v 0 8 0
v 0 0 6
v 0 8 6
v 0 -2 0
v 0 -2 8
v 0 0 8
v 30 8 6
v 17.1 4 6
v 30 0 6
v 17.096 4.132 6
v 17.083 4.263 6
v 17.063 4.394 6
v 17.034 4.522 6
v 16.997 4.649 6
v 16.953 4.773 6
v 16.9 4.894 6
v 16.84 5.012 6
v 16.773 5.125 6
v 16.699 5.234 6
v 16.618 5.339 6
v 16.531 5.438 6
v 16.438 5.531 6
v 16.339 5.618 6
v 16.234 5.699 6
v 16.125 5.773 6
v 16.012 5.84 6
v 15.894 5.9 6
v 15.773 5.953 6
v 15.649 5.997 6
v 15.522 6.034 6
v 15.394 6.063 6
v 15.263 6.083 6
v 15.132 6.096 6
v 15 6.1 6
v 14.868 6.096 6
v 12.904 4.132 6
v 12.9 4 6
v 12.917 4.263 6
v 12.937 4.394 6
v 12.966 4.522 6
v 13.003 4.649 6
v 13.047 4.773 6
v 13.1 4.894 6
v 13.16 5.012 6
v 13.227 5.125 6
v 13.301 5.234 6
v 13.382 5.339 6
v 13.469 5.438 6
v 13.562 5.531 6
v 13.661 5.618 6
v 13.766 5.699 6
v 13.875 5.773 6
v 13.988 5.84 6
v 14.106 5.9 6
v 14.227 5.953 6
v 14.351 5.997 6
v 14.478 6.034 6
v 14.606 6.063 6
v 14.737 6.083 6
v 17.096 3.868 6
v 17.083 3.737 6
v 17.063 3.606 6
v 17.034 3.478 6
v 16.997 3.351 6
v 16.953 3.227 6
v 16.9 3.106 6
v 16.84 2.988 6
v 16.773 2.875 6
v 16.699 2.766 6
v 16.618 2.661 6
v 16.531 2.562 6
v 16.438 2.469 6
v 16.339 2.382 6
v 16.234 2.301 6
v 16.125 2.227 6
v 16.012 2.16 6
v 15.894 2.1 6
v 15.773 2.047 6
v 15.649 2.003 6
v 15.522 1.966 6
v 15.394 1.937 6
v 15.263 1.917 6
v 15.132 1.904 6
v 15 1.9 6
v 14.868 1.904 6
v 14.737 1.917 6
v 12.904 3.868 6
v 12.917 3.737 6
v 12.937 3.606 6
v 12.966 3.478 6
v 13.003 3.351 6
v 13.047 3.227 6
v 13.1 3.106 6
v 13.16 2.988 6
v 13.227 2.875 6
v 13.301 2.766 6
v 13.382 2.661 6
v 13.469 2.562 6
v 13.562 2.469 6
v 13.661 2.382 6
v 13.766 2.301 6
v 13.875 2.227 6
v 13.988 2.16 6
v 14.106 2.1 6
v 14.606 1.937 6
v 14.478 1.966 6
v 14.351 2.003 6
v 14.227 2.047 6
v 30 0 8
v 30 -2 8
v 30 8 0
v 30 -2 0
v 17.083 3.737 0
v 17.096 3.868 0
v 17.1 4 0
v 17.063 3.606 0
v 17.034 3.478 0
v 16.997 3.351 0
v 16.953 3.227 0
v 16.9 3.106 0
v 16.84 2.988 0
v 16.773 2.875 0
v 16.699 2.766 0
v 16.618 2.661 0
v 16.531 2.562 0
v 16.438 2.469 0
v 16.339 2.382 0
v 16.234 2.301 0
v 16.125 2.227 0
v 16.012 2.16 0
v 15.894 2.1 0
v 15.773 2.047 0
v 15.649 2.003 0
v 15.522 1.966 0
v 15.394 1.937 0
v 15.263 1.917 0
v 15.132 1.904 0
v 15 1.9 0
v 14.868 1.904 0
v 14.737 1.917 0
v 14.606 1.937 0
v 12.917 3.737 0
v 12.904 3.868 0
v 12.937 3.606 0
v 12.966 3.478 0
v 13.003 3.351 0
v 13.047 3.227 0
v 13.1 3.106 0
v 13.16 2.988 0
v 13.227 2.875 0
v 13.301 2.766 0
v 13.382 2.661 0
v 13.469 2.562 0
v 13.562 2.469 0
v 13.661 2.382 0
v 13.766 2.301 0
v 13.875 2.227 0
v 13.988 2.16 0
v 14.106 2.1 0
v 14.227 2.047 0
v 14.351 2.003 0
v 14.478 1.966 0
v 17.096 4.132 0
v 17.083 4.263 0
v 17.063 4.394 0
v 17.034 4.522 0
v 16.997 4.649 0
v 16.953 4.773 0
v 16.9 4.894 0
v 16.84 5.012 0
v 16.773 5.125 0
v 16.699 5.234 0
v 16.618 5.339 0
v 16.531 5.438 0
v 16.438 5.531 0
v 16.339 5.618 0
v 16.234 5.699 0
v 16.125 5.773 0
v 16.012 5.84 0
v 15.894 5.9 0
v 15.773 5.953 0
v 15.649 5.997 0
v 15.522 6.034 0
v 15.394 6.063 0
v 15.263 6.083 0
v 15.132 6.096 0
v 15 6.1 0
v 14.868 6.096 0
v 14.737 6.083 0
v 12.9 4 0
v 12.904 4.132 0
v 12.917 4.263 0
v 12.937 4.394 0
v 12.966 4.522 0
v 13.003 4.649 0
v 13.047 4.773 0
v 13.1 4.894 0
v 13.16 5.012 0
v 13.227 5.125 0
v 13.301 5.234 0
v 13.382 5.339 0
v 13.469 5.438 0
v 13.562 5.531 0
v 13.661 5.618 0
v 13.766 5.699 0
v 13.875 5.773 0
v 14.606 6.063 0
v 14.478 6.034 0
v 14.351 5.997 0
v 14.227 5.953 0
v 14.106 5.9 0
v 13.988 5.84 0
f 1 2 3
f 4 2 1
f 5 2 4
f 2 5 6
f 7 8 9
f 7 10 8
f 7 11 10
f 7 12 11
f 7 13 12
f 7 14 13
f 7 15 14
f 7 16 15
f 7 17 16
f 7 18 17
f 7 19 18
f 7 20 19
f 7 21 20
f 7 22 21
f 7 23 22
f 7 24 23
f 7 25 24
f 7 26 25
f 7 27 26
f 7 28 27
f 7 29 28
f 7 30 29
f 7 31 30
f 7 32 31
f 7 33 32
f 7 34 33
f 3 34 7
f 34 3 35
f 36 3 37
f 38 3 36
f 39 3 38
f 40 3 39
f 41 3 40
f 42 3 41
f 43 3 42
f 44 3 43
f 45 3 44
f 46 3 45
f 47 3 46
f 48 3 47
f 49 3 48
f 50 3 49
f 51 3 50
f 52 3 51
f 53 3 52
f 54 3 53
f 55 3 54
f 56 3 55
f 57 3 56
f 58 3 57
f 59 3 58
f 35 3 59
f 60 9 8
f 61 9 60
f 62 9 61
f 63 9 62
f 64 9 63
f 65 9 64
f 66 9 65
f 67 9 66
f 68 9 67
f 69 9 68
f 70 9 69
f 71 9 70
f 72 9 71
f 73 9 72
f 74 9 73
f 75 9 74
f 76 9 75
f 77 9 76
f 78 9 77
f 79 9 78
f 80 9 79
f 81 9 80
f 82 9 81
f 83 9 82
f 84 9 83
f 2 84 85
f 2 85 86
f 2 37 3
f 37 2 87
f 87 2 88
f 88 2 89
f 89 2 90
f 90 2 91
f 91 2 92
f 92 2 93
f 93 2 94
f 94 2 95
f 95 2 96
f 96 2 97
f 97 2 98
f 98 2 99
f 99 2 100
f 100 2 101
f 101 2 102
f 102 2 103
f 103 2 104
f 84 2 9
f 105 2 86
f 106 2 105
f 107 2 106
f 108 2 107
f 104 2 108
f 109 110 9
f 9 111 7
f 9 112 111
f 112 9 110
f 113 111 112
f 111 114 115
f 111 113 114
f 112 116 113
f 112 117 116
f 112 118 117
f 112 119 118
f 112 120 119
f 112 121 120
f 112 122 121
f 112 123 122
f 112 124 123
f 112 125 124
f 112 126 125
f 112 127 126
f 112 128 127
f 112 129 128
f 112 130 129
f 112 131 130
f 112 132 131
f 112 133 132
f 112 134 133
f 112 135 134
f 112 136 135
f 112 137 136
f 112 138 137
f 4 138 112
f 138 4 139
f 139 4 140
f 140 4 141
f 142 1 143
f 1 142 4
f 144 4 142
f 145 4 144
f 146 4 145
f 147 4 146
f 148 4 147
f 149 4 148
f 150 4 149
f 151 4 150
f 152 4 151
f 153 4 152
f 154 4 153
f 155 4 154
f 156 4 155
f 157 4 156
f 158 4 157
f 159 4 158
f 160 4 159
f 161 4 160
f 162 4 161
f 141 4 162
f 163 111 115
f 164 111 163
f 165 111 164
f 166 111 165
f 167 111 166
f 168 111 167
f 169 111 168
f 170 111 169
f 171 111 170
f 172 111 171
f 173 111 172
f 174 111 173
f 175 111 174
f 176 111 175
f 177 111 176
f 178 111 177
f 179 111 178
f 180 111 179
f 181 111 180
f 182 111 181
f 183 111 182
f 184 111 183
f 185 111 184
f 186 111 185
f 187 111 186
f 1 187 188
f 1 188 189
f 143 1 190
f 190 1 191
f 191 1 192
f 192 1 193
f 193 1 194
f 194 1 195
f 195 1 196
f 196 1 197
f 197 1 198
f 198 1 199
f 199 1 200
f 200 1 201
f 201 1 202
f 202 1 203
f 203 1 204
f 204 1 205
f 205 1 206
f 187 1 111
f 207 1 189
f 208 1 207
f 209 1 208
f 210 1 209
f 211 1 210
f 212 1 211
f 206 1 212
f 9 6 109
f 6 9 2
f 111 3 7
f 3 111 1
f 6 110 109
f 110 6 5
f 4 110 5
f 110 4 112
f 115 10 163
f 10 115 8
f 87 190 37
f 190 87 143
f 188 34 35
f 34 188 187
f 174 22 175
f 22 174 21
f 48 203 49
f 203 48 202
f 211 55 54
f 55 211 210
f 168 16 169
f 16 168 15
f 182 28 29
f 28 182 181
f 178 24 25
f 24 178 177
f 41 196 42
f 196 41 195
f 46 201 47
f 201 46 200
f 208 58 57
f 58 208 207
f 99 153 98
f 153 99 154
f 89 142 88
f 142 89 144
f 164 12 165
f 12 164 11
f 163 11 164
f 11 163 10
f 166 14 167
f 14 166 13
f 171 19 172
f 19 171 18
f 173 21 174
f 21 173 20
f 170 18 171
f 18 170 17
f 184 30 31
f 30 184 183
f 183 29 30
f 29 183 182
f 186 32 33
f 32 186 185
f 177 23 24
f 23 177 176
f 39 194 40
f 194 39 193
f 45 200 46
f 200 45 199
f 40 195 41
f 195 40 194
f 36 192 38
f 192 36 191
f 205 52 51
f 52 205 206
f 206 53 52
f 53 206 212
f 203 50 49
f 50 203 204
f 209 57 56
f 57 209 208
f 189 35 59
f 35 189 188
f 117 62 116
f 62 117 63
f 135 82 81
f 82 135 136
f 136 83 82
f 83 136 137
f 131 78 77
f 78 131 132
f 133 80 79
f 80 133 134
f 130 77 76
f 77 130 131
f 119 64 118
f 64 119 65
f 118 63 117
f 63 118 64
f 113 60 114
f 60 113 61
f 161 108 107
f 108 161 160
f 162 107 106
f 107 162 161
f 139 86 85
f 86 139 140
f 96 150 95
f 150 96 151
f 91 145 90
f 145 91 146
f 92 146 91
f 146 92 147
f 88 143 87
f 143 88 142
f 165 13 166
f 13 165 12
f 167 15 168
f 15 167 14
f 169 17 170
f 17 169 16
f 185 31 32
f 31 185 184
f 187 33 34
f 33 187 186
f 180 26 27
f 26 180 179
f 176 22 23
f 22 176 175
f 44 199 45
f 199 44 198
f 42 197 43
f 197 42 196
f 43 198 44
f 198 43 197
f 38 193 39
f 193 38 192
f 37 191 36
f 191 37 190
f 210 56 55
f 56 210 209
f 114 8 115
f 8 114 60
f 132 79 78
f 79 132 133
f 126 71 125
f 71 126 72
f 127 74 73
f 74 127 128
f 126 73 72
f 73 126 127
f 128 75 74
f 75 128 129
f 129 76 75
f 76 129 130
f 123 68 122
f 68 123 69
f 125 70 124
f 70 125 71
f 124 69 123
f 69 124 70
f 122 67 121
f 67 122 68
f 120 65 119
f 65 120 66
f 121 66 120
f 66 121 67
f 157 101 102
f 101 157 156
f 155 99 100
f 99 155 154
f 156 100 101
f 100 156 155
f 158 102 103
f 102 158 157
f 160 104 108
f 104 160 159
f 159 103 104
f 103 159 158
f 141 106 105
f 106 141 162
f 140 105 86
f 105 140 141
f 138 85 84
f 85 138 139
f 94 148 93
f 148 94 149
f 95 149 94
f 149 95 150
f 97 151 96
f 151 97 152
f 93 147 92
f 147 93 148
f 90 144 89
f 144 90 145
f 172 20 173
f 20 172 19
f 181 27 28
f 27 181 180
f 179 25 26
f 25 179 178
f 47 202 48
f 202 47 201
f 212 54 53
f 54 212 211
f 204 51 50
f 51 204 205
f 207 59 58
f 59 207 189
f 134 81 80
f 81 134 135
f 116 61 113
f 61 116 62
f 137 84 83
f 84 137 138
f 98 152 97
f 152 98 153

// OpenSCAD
body_hight = 6; //mm
body_len = 30; //mm
body_width = 8; //mm

hole_dia = 4.2; //mm
hole_pos_x = 15; //mm
hole_pos_y = 4; //mm

border_hight = 2; //mm
border_width = 2; //mm

$fn = 100;

difference() {
    union() {
        translate([0, 0, 0])
            cube([body_len, body_width, body_hight]);
        translate([0, -border_width, 0])
    cube([body_len, border_width, border_hight + body_hight]);
    }
    translate([hole_pos_x, hole_pos_y, 0])
        cylinder(body_hight, r = hole_dia / 2);
}
